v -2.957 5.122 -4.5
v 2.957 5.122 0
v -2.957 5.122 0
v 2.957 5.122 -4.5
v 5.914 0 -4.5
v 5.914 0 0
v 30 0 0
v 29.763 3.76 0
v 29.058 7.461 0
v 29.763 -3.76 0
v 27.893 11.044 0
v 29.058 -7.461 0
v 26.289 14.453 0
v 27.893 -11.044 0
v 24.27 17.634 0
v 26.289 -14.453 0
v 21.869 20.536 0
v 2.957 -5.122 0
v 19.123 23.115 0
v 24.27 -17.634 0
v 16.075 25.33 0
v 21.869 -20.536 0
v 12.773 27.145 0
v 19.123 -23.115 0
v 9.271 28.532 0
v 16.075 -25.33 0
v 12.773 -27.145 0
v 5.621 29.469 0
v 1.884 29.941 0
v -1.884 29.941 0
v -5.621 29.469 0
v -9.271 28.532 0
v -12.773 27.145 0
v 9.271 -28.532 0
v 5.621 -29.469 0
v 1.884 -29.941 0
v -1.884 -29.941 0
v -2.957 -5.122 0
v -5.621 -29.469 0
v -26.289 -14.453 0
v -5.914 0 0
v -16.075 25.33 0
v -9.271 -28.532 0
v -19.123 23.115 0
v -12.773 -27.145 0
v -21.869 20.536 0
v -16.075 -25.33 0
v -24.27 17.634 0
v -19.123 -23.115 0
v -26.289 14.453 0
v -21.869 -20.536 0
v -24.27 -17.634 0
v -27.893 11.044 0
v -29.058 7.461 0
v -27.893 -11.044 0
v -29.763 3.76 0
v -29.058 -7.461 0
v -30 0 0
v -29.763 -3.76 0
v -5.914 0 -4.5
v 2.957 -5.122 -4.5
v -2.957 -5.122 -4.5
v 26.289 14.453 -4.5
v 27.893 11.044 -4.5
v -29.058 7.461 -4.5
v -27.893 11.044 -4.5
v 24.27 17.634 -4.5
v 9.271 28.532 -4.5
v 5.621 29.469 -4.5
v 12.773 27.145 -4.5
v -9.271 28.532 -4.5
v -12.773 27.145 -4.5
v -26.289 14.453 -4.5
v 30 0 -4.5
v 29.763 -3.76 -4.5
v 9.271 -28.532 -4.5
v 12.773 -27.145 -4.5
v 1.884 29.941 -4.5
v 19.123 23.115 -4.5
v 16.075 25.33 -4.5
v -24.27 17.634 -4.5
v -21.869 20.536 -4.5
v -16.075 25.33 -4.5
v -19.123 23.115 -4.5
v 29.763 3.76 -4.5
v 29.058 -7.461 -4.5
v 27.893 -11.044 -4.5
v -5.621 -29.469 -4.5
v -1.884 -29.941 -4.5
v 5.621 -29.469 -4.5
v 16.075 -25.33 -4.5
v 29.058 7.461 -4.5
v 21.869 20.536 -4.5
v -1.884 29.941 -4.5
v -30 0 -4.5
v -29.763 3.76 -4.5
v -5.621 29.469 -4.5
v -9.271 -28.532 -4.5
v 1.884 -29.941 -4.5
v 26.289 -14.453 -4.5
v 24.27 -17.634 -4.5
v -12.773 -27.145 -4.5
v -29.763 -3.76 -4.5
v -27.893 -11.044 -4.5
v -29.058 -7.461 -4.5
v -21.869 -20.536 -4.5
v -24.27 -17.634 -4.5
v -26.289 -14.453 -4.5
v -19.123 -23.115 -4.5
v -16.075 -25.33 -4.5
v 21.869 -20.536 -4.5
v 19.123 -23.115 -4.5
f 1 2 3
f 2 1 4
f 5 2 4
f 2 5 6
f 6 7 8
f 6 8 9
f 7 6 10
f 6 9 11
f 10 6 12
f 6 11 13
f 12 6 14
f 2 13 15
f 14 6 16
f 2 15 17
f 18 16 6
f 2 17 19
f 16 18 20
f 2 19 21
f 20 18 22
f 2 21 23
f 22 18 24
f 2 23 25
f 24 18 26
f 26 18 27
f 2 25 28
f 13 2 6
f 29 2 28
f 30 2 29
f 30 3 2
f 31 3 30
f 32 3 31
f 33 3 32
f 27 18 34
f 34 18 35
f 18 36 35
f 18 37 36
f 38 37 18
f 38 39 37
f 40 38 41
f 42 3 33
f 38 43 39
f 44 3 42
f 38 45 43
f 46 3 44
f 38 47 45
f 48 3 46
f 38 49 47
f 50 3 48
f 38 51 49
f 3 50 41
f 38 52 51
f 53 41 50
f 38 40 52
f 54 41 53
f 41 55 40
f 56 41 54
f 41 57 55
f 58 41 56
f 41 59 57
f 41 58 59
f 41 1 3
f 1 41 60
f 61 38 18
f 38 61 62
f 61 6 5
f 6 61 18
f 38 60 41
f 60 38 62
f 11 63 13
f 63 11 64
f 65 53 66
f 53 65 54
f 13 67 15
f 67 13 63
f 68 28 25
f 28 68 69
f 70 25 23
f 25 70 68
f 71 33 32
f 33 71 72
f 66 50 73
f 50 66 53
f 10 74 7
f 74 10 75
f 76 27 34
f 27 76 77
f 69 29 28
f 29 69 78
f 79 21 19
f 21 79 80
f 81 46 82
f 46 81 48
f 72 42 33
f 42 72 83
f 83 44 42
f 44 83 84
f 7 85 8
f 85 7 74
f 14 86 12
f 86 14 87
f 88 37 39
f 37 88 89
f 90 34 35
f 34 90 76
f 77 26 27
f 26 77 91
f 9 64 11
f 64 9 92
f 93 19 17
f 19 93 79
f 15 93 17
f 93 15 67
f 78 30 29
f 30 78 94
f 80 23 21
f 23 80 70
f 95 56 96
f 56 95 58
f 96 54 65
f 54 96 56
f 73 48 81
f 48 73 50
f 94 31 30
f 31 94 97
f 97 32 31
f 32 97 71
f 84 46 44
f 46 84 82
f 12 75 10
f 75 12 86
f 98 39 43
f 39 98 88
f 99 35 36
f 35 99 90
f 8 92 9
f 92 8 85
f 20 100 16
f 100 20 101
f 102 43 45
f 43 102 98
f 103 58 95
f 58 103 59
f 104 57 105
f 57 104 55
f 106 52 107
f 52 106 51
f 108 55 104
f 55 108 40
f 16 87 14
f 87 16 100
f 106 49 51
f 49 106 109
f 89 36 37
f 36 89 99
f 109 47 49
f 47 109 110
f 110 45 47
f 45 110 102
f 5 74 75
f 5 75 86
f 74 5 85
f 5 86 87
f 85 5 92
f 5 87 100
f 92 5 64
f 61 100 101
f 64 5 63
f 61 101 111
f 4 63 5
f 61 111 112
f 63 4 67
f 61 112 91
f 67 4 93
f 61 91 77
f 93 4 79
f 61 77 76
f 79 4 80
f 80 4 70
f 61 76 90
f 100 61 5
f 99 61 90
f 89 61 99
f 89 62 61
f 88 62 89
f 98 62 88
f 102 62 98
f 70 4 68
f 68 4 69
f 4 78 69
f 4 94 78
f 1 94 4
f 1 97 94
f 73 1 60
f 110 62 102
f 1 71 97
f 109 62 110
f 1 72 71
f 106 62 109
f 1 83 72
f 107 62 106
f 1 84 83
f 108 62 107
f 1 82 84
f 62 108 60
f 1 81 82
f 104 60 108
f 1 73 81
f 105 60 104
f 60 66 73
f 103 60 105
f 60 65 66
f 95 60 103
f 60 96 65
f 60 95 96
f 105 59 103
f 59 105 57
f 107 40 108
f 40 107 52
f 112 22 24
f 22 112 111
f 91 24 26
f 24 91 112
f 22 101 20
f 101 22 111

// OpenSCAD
$fn = 50;

difference() {
	union() {
		translate(v = [0, 0, -4.5]) {
			cylinder(h = 4.5, r = 30.0);
		}
	}
	union() {
		translate(v = [0, 0, 0]) {
			rotate(a = [0, 0, 0]) {
				difference() {
					union() {
						translate(v = [0, 0, -5]) {
							linear_extrude(height = 5) {
								polygon(points = [[5.914249999999999, 0.0], [2.957125, 5.1218907443321156], [-2.9571249999999982, 5.1218907443321156], [-5.914249999999999, 7.242867331857232e-16], [-2.9571250000000022, -5.121890744332115], [2.9571249999999956, -5.121890744332118]]);
							}
						}
					}
					union();
				}
			}
		}
		#translate(v = [0, 0, -100.0]) {
			cylinder(h = 200, r = 3.25);
		}
	}
}
